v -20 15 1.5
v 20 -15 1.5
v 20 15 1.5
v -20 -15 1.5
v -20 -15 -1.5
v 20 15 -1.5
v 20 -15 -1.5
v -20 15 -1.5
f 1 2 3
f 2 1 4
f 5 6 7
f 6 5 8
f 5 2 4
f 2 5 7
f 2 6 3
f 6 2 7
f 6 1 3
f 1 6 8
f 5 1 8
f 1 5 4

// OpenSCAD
module IMU(){
    color("#20D020")
    cube(size=[40, 30, 3], center=true);
}

IMU();
